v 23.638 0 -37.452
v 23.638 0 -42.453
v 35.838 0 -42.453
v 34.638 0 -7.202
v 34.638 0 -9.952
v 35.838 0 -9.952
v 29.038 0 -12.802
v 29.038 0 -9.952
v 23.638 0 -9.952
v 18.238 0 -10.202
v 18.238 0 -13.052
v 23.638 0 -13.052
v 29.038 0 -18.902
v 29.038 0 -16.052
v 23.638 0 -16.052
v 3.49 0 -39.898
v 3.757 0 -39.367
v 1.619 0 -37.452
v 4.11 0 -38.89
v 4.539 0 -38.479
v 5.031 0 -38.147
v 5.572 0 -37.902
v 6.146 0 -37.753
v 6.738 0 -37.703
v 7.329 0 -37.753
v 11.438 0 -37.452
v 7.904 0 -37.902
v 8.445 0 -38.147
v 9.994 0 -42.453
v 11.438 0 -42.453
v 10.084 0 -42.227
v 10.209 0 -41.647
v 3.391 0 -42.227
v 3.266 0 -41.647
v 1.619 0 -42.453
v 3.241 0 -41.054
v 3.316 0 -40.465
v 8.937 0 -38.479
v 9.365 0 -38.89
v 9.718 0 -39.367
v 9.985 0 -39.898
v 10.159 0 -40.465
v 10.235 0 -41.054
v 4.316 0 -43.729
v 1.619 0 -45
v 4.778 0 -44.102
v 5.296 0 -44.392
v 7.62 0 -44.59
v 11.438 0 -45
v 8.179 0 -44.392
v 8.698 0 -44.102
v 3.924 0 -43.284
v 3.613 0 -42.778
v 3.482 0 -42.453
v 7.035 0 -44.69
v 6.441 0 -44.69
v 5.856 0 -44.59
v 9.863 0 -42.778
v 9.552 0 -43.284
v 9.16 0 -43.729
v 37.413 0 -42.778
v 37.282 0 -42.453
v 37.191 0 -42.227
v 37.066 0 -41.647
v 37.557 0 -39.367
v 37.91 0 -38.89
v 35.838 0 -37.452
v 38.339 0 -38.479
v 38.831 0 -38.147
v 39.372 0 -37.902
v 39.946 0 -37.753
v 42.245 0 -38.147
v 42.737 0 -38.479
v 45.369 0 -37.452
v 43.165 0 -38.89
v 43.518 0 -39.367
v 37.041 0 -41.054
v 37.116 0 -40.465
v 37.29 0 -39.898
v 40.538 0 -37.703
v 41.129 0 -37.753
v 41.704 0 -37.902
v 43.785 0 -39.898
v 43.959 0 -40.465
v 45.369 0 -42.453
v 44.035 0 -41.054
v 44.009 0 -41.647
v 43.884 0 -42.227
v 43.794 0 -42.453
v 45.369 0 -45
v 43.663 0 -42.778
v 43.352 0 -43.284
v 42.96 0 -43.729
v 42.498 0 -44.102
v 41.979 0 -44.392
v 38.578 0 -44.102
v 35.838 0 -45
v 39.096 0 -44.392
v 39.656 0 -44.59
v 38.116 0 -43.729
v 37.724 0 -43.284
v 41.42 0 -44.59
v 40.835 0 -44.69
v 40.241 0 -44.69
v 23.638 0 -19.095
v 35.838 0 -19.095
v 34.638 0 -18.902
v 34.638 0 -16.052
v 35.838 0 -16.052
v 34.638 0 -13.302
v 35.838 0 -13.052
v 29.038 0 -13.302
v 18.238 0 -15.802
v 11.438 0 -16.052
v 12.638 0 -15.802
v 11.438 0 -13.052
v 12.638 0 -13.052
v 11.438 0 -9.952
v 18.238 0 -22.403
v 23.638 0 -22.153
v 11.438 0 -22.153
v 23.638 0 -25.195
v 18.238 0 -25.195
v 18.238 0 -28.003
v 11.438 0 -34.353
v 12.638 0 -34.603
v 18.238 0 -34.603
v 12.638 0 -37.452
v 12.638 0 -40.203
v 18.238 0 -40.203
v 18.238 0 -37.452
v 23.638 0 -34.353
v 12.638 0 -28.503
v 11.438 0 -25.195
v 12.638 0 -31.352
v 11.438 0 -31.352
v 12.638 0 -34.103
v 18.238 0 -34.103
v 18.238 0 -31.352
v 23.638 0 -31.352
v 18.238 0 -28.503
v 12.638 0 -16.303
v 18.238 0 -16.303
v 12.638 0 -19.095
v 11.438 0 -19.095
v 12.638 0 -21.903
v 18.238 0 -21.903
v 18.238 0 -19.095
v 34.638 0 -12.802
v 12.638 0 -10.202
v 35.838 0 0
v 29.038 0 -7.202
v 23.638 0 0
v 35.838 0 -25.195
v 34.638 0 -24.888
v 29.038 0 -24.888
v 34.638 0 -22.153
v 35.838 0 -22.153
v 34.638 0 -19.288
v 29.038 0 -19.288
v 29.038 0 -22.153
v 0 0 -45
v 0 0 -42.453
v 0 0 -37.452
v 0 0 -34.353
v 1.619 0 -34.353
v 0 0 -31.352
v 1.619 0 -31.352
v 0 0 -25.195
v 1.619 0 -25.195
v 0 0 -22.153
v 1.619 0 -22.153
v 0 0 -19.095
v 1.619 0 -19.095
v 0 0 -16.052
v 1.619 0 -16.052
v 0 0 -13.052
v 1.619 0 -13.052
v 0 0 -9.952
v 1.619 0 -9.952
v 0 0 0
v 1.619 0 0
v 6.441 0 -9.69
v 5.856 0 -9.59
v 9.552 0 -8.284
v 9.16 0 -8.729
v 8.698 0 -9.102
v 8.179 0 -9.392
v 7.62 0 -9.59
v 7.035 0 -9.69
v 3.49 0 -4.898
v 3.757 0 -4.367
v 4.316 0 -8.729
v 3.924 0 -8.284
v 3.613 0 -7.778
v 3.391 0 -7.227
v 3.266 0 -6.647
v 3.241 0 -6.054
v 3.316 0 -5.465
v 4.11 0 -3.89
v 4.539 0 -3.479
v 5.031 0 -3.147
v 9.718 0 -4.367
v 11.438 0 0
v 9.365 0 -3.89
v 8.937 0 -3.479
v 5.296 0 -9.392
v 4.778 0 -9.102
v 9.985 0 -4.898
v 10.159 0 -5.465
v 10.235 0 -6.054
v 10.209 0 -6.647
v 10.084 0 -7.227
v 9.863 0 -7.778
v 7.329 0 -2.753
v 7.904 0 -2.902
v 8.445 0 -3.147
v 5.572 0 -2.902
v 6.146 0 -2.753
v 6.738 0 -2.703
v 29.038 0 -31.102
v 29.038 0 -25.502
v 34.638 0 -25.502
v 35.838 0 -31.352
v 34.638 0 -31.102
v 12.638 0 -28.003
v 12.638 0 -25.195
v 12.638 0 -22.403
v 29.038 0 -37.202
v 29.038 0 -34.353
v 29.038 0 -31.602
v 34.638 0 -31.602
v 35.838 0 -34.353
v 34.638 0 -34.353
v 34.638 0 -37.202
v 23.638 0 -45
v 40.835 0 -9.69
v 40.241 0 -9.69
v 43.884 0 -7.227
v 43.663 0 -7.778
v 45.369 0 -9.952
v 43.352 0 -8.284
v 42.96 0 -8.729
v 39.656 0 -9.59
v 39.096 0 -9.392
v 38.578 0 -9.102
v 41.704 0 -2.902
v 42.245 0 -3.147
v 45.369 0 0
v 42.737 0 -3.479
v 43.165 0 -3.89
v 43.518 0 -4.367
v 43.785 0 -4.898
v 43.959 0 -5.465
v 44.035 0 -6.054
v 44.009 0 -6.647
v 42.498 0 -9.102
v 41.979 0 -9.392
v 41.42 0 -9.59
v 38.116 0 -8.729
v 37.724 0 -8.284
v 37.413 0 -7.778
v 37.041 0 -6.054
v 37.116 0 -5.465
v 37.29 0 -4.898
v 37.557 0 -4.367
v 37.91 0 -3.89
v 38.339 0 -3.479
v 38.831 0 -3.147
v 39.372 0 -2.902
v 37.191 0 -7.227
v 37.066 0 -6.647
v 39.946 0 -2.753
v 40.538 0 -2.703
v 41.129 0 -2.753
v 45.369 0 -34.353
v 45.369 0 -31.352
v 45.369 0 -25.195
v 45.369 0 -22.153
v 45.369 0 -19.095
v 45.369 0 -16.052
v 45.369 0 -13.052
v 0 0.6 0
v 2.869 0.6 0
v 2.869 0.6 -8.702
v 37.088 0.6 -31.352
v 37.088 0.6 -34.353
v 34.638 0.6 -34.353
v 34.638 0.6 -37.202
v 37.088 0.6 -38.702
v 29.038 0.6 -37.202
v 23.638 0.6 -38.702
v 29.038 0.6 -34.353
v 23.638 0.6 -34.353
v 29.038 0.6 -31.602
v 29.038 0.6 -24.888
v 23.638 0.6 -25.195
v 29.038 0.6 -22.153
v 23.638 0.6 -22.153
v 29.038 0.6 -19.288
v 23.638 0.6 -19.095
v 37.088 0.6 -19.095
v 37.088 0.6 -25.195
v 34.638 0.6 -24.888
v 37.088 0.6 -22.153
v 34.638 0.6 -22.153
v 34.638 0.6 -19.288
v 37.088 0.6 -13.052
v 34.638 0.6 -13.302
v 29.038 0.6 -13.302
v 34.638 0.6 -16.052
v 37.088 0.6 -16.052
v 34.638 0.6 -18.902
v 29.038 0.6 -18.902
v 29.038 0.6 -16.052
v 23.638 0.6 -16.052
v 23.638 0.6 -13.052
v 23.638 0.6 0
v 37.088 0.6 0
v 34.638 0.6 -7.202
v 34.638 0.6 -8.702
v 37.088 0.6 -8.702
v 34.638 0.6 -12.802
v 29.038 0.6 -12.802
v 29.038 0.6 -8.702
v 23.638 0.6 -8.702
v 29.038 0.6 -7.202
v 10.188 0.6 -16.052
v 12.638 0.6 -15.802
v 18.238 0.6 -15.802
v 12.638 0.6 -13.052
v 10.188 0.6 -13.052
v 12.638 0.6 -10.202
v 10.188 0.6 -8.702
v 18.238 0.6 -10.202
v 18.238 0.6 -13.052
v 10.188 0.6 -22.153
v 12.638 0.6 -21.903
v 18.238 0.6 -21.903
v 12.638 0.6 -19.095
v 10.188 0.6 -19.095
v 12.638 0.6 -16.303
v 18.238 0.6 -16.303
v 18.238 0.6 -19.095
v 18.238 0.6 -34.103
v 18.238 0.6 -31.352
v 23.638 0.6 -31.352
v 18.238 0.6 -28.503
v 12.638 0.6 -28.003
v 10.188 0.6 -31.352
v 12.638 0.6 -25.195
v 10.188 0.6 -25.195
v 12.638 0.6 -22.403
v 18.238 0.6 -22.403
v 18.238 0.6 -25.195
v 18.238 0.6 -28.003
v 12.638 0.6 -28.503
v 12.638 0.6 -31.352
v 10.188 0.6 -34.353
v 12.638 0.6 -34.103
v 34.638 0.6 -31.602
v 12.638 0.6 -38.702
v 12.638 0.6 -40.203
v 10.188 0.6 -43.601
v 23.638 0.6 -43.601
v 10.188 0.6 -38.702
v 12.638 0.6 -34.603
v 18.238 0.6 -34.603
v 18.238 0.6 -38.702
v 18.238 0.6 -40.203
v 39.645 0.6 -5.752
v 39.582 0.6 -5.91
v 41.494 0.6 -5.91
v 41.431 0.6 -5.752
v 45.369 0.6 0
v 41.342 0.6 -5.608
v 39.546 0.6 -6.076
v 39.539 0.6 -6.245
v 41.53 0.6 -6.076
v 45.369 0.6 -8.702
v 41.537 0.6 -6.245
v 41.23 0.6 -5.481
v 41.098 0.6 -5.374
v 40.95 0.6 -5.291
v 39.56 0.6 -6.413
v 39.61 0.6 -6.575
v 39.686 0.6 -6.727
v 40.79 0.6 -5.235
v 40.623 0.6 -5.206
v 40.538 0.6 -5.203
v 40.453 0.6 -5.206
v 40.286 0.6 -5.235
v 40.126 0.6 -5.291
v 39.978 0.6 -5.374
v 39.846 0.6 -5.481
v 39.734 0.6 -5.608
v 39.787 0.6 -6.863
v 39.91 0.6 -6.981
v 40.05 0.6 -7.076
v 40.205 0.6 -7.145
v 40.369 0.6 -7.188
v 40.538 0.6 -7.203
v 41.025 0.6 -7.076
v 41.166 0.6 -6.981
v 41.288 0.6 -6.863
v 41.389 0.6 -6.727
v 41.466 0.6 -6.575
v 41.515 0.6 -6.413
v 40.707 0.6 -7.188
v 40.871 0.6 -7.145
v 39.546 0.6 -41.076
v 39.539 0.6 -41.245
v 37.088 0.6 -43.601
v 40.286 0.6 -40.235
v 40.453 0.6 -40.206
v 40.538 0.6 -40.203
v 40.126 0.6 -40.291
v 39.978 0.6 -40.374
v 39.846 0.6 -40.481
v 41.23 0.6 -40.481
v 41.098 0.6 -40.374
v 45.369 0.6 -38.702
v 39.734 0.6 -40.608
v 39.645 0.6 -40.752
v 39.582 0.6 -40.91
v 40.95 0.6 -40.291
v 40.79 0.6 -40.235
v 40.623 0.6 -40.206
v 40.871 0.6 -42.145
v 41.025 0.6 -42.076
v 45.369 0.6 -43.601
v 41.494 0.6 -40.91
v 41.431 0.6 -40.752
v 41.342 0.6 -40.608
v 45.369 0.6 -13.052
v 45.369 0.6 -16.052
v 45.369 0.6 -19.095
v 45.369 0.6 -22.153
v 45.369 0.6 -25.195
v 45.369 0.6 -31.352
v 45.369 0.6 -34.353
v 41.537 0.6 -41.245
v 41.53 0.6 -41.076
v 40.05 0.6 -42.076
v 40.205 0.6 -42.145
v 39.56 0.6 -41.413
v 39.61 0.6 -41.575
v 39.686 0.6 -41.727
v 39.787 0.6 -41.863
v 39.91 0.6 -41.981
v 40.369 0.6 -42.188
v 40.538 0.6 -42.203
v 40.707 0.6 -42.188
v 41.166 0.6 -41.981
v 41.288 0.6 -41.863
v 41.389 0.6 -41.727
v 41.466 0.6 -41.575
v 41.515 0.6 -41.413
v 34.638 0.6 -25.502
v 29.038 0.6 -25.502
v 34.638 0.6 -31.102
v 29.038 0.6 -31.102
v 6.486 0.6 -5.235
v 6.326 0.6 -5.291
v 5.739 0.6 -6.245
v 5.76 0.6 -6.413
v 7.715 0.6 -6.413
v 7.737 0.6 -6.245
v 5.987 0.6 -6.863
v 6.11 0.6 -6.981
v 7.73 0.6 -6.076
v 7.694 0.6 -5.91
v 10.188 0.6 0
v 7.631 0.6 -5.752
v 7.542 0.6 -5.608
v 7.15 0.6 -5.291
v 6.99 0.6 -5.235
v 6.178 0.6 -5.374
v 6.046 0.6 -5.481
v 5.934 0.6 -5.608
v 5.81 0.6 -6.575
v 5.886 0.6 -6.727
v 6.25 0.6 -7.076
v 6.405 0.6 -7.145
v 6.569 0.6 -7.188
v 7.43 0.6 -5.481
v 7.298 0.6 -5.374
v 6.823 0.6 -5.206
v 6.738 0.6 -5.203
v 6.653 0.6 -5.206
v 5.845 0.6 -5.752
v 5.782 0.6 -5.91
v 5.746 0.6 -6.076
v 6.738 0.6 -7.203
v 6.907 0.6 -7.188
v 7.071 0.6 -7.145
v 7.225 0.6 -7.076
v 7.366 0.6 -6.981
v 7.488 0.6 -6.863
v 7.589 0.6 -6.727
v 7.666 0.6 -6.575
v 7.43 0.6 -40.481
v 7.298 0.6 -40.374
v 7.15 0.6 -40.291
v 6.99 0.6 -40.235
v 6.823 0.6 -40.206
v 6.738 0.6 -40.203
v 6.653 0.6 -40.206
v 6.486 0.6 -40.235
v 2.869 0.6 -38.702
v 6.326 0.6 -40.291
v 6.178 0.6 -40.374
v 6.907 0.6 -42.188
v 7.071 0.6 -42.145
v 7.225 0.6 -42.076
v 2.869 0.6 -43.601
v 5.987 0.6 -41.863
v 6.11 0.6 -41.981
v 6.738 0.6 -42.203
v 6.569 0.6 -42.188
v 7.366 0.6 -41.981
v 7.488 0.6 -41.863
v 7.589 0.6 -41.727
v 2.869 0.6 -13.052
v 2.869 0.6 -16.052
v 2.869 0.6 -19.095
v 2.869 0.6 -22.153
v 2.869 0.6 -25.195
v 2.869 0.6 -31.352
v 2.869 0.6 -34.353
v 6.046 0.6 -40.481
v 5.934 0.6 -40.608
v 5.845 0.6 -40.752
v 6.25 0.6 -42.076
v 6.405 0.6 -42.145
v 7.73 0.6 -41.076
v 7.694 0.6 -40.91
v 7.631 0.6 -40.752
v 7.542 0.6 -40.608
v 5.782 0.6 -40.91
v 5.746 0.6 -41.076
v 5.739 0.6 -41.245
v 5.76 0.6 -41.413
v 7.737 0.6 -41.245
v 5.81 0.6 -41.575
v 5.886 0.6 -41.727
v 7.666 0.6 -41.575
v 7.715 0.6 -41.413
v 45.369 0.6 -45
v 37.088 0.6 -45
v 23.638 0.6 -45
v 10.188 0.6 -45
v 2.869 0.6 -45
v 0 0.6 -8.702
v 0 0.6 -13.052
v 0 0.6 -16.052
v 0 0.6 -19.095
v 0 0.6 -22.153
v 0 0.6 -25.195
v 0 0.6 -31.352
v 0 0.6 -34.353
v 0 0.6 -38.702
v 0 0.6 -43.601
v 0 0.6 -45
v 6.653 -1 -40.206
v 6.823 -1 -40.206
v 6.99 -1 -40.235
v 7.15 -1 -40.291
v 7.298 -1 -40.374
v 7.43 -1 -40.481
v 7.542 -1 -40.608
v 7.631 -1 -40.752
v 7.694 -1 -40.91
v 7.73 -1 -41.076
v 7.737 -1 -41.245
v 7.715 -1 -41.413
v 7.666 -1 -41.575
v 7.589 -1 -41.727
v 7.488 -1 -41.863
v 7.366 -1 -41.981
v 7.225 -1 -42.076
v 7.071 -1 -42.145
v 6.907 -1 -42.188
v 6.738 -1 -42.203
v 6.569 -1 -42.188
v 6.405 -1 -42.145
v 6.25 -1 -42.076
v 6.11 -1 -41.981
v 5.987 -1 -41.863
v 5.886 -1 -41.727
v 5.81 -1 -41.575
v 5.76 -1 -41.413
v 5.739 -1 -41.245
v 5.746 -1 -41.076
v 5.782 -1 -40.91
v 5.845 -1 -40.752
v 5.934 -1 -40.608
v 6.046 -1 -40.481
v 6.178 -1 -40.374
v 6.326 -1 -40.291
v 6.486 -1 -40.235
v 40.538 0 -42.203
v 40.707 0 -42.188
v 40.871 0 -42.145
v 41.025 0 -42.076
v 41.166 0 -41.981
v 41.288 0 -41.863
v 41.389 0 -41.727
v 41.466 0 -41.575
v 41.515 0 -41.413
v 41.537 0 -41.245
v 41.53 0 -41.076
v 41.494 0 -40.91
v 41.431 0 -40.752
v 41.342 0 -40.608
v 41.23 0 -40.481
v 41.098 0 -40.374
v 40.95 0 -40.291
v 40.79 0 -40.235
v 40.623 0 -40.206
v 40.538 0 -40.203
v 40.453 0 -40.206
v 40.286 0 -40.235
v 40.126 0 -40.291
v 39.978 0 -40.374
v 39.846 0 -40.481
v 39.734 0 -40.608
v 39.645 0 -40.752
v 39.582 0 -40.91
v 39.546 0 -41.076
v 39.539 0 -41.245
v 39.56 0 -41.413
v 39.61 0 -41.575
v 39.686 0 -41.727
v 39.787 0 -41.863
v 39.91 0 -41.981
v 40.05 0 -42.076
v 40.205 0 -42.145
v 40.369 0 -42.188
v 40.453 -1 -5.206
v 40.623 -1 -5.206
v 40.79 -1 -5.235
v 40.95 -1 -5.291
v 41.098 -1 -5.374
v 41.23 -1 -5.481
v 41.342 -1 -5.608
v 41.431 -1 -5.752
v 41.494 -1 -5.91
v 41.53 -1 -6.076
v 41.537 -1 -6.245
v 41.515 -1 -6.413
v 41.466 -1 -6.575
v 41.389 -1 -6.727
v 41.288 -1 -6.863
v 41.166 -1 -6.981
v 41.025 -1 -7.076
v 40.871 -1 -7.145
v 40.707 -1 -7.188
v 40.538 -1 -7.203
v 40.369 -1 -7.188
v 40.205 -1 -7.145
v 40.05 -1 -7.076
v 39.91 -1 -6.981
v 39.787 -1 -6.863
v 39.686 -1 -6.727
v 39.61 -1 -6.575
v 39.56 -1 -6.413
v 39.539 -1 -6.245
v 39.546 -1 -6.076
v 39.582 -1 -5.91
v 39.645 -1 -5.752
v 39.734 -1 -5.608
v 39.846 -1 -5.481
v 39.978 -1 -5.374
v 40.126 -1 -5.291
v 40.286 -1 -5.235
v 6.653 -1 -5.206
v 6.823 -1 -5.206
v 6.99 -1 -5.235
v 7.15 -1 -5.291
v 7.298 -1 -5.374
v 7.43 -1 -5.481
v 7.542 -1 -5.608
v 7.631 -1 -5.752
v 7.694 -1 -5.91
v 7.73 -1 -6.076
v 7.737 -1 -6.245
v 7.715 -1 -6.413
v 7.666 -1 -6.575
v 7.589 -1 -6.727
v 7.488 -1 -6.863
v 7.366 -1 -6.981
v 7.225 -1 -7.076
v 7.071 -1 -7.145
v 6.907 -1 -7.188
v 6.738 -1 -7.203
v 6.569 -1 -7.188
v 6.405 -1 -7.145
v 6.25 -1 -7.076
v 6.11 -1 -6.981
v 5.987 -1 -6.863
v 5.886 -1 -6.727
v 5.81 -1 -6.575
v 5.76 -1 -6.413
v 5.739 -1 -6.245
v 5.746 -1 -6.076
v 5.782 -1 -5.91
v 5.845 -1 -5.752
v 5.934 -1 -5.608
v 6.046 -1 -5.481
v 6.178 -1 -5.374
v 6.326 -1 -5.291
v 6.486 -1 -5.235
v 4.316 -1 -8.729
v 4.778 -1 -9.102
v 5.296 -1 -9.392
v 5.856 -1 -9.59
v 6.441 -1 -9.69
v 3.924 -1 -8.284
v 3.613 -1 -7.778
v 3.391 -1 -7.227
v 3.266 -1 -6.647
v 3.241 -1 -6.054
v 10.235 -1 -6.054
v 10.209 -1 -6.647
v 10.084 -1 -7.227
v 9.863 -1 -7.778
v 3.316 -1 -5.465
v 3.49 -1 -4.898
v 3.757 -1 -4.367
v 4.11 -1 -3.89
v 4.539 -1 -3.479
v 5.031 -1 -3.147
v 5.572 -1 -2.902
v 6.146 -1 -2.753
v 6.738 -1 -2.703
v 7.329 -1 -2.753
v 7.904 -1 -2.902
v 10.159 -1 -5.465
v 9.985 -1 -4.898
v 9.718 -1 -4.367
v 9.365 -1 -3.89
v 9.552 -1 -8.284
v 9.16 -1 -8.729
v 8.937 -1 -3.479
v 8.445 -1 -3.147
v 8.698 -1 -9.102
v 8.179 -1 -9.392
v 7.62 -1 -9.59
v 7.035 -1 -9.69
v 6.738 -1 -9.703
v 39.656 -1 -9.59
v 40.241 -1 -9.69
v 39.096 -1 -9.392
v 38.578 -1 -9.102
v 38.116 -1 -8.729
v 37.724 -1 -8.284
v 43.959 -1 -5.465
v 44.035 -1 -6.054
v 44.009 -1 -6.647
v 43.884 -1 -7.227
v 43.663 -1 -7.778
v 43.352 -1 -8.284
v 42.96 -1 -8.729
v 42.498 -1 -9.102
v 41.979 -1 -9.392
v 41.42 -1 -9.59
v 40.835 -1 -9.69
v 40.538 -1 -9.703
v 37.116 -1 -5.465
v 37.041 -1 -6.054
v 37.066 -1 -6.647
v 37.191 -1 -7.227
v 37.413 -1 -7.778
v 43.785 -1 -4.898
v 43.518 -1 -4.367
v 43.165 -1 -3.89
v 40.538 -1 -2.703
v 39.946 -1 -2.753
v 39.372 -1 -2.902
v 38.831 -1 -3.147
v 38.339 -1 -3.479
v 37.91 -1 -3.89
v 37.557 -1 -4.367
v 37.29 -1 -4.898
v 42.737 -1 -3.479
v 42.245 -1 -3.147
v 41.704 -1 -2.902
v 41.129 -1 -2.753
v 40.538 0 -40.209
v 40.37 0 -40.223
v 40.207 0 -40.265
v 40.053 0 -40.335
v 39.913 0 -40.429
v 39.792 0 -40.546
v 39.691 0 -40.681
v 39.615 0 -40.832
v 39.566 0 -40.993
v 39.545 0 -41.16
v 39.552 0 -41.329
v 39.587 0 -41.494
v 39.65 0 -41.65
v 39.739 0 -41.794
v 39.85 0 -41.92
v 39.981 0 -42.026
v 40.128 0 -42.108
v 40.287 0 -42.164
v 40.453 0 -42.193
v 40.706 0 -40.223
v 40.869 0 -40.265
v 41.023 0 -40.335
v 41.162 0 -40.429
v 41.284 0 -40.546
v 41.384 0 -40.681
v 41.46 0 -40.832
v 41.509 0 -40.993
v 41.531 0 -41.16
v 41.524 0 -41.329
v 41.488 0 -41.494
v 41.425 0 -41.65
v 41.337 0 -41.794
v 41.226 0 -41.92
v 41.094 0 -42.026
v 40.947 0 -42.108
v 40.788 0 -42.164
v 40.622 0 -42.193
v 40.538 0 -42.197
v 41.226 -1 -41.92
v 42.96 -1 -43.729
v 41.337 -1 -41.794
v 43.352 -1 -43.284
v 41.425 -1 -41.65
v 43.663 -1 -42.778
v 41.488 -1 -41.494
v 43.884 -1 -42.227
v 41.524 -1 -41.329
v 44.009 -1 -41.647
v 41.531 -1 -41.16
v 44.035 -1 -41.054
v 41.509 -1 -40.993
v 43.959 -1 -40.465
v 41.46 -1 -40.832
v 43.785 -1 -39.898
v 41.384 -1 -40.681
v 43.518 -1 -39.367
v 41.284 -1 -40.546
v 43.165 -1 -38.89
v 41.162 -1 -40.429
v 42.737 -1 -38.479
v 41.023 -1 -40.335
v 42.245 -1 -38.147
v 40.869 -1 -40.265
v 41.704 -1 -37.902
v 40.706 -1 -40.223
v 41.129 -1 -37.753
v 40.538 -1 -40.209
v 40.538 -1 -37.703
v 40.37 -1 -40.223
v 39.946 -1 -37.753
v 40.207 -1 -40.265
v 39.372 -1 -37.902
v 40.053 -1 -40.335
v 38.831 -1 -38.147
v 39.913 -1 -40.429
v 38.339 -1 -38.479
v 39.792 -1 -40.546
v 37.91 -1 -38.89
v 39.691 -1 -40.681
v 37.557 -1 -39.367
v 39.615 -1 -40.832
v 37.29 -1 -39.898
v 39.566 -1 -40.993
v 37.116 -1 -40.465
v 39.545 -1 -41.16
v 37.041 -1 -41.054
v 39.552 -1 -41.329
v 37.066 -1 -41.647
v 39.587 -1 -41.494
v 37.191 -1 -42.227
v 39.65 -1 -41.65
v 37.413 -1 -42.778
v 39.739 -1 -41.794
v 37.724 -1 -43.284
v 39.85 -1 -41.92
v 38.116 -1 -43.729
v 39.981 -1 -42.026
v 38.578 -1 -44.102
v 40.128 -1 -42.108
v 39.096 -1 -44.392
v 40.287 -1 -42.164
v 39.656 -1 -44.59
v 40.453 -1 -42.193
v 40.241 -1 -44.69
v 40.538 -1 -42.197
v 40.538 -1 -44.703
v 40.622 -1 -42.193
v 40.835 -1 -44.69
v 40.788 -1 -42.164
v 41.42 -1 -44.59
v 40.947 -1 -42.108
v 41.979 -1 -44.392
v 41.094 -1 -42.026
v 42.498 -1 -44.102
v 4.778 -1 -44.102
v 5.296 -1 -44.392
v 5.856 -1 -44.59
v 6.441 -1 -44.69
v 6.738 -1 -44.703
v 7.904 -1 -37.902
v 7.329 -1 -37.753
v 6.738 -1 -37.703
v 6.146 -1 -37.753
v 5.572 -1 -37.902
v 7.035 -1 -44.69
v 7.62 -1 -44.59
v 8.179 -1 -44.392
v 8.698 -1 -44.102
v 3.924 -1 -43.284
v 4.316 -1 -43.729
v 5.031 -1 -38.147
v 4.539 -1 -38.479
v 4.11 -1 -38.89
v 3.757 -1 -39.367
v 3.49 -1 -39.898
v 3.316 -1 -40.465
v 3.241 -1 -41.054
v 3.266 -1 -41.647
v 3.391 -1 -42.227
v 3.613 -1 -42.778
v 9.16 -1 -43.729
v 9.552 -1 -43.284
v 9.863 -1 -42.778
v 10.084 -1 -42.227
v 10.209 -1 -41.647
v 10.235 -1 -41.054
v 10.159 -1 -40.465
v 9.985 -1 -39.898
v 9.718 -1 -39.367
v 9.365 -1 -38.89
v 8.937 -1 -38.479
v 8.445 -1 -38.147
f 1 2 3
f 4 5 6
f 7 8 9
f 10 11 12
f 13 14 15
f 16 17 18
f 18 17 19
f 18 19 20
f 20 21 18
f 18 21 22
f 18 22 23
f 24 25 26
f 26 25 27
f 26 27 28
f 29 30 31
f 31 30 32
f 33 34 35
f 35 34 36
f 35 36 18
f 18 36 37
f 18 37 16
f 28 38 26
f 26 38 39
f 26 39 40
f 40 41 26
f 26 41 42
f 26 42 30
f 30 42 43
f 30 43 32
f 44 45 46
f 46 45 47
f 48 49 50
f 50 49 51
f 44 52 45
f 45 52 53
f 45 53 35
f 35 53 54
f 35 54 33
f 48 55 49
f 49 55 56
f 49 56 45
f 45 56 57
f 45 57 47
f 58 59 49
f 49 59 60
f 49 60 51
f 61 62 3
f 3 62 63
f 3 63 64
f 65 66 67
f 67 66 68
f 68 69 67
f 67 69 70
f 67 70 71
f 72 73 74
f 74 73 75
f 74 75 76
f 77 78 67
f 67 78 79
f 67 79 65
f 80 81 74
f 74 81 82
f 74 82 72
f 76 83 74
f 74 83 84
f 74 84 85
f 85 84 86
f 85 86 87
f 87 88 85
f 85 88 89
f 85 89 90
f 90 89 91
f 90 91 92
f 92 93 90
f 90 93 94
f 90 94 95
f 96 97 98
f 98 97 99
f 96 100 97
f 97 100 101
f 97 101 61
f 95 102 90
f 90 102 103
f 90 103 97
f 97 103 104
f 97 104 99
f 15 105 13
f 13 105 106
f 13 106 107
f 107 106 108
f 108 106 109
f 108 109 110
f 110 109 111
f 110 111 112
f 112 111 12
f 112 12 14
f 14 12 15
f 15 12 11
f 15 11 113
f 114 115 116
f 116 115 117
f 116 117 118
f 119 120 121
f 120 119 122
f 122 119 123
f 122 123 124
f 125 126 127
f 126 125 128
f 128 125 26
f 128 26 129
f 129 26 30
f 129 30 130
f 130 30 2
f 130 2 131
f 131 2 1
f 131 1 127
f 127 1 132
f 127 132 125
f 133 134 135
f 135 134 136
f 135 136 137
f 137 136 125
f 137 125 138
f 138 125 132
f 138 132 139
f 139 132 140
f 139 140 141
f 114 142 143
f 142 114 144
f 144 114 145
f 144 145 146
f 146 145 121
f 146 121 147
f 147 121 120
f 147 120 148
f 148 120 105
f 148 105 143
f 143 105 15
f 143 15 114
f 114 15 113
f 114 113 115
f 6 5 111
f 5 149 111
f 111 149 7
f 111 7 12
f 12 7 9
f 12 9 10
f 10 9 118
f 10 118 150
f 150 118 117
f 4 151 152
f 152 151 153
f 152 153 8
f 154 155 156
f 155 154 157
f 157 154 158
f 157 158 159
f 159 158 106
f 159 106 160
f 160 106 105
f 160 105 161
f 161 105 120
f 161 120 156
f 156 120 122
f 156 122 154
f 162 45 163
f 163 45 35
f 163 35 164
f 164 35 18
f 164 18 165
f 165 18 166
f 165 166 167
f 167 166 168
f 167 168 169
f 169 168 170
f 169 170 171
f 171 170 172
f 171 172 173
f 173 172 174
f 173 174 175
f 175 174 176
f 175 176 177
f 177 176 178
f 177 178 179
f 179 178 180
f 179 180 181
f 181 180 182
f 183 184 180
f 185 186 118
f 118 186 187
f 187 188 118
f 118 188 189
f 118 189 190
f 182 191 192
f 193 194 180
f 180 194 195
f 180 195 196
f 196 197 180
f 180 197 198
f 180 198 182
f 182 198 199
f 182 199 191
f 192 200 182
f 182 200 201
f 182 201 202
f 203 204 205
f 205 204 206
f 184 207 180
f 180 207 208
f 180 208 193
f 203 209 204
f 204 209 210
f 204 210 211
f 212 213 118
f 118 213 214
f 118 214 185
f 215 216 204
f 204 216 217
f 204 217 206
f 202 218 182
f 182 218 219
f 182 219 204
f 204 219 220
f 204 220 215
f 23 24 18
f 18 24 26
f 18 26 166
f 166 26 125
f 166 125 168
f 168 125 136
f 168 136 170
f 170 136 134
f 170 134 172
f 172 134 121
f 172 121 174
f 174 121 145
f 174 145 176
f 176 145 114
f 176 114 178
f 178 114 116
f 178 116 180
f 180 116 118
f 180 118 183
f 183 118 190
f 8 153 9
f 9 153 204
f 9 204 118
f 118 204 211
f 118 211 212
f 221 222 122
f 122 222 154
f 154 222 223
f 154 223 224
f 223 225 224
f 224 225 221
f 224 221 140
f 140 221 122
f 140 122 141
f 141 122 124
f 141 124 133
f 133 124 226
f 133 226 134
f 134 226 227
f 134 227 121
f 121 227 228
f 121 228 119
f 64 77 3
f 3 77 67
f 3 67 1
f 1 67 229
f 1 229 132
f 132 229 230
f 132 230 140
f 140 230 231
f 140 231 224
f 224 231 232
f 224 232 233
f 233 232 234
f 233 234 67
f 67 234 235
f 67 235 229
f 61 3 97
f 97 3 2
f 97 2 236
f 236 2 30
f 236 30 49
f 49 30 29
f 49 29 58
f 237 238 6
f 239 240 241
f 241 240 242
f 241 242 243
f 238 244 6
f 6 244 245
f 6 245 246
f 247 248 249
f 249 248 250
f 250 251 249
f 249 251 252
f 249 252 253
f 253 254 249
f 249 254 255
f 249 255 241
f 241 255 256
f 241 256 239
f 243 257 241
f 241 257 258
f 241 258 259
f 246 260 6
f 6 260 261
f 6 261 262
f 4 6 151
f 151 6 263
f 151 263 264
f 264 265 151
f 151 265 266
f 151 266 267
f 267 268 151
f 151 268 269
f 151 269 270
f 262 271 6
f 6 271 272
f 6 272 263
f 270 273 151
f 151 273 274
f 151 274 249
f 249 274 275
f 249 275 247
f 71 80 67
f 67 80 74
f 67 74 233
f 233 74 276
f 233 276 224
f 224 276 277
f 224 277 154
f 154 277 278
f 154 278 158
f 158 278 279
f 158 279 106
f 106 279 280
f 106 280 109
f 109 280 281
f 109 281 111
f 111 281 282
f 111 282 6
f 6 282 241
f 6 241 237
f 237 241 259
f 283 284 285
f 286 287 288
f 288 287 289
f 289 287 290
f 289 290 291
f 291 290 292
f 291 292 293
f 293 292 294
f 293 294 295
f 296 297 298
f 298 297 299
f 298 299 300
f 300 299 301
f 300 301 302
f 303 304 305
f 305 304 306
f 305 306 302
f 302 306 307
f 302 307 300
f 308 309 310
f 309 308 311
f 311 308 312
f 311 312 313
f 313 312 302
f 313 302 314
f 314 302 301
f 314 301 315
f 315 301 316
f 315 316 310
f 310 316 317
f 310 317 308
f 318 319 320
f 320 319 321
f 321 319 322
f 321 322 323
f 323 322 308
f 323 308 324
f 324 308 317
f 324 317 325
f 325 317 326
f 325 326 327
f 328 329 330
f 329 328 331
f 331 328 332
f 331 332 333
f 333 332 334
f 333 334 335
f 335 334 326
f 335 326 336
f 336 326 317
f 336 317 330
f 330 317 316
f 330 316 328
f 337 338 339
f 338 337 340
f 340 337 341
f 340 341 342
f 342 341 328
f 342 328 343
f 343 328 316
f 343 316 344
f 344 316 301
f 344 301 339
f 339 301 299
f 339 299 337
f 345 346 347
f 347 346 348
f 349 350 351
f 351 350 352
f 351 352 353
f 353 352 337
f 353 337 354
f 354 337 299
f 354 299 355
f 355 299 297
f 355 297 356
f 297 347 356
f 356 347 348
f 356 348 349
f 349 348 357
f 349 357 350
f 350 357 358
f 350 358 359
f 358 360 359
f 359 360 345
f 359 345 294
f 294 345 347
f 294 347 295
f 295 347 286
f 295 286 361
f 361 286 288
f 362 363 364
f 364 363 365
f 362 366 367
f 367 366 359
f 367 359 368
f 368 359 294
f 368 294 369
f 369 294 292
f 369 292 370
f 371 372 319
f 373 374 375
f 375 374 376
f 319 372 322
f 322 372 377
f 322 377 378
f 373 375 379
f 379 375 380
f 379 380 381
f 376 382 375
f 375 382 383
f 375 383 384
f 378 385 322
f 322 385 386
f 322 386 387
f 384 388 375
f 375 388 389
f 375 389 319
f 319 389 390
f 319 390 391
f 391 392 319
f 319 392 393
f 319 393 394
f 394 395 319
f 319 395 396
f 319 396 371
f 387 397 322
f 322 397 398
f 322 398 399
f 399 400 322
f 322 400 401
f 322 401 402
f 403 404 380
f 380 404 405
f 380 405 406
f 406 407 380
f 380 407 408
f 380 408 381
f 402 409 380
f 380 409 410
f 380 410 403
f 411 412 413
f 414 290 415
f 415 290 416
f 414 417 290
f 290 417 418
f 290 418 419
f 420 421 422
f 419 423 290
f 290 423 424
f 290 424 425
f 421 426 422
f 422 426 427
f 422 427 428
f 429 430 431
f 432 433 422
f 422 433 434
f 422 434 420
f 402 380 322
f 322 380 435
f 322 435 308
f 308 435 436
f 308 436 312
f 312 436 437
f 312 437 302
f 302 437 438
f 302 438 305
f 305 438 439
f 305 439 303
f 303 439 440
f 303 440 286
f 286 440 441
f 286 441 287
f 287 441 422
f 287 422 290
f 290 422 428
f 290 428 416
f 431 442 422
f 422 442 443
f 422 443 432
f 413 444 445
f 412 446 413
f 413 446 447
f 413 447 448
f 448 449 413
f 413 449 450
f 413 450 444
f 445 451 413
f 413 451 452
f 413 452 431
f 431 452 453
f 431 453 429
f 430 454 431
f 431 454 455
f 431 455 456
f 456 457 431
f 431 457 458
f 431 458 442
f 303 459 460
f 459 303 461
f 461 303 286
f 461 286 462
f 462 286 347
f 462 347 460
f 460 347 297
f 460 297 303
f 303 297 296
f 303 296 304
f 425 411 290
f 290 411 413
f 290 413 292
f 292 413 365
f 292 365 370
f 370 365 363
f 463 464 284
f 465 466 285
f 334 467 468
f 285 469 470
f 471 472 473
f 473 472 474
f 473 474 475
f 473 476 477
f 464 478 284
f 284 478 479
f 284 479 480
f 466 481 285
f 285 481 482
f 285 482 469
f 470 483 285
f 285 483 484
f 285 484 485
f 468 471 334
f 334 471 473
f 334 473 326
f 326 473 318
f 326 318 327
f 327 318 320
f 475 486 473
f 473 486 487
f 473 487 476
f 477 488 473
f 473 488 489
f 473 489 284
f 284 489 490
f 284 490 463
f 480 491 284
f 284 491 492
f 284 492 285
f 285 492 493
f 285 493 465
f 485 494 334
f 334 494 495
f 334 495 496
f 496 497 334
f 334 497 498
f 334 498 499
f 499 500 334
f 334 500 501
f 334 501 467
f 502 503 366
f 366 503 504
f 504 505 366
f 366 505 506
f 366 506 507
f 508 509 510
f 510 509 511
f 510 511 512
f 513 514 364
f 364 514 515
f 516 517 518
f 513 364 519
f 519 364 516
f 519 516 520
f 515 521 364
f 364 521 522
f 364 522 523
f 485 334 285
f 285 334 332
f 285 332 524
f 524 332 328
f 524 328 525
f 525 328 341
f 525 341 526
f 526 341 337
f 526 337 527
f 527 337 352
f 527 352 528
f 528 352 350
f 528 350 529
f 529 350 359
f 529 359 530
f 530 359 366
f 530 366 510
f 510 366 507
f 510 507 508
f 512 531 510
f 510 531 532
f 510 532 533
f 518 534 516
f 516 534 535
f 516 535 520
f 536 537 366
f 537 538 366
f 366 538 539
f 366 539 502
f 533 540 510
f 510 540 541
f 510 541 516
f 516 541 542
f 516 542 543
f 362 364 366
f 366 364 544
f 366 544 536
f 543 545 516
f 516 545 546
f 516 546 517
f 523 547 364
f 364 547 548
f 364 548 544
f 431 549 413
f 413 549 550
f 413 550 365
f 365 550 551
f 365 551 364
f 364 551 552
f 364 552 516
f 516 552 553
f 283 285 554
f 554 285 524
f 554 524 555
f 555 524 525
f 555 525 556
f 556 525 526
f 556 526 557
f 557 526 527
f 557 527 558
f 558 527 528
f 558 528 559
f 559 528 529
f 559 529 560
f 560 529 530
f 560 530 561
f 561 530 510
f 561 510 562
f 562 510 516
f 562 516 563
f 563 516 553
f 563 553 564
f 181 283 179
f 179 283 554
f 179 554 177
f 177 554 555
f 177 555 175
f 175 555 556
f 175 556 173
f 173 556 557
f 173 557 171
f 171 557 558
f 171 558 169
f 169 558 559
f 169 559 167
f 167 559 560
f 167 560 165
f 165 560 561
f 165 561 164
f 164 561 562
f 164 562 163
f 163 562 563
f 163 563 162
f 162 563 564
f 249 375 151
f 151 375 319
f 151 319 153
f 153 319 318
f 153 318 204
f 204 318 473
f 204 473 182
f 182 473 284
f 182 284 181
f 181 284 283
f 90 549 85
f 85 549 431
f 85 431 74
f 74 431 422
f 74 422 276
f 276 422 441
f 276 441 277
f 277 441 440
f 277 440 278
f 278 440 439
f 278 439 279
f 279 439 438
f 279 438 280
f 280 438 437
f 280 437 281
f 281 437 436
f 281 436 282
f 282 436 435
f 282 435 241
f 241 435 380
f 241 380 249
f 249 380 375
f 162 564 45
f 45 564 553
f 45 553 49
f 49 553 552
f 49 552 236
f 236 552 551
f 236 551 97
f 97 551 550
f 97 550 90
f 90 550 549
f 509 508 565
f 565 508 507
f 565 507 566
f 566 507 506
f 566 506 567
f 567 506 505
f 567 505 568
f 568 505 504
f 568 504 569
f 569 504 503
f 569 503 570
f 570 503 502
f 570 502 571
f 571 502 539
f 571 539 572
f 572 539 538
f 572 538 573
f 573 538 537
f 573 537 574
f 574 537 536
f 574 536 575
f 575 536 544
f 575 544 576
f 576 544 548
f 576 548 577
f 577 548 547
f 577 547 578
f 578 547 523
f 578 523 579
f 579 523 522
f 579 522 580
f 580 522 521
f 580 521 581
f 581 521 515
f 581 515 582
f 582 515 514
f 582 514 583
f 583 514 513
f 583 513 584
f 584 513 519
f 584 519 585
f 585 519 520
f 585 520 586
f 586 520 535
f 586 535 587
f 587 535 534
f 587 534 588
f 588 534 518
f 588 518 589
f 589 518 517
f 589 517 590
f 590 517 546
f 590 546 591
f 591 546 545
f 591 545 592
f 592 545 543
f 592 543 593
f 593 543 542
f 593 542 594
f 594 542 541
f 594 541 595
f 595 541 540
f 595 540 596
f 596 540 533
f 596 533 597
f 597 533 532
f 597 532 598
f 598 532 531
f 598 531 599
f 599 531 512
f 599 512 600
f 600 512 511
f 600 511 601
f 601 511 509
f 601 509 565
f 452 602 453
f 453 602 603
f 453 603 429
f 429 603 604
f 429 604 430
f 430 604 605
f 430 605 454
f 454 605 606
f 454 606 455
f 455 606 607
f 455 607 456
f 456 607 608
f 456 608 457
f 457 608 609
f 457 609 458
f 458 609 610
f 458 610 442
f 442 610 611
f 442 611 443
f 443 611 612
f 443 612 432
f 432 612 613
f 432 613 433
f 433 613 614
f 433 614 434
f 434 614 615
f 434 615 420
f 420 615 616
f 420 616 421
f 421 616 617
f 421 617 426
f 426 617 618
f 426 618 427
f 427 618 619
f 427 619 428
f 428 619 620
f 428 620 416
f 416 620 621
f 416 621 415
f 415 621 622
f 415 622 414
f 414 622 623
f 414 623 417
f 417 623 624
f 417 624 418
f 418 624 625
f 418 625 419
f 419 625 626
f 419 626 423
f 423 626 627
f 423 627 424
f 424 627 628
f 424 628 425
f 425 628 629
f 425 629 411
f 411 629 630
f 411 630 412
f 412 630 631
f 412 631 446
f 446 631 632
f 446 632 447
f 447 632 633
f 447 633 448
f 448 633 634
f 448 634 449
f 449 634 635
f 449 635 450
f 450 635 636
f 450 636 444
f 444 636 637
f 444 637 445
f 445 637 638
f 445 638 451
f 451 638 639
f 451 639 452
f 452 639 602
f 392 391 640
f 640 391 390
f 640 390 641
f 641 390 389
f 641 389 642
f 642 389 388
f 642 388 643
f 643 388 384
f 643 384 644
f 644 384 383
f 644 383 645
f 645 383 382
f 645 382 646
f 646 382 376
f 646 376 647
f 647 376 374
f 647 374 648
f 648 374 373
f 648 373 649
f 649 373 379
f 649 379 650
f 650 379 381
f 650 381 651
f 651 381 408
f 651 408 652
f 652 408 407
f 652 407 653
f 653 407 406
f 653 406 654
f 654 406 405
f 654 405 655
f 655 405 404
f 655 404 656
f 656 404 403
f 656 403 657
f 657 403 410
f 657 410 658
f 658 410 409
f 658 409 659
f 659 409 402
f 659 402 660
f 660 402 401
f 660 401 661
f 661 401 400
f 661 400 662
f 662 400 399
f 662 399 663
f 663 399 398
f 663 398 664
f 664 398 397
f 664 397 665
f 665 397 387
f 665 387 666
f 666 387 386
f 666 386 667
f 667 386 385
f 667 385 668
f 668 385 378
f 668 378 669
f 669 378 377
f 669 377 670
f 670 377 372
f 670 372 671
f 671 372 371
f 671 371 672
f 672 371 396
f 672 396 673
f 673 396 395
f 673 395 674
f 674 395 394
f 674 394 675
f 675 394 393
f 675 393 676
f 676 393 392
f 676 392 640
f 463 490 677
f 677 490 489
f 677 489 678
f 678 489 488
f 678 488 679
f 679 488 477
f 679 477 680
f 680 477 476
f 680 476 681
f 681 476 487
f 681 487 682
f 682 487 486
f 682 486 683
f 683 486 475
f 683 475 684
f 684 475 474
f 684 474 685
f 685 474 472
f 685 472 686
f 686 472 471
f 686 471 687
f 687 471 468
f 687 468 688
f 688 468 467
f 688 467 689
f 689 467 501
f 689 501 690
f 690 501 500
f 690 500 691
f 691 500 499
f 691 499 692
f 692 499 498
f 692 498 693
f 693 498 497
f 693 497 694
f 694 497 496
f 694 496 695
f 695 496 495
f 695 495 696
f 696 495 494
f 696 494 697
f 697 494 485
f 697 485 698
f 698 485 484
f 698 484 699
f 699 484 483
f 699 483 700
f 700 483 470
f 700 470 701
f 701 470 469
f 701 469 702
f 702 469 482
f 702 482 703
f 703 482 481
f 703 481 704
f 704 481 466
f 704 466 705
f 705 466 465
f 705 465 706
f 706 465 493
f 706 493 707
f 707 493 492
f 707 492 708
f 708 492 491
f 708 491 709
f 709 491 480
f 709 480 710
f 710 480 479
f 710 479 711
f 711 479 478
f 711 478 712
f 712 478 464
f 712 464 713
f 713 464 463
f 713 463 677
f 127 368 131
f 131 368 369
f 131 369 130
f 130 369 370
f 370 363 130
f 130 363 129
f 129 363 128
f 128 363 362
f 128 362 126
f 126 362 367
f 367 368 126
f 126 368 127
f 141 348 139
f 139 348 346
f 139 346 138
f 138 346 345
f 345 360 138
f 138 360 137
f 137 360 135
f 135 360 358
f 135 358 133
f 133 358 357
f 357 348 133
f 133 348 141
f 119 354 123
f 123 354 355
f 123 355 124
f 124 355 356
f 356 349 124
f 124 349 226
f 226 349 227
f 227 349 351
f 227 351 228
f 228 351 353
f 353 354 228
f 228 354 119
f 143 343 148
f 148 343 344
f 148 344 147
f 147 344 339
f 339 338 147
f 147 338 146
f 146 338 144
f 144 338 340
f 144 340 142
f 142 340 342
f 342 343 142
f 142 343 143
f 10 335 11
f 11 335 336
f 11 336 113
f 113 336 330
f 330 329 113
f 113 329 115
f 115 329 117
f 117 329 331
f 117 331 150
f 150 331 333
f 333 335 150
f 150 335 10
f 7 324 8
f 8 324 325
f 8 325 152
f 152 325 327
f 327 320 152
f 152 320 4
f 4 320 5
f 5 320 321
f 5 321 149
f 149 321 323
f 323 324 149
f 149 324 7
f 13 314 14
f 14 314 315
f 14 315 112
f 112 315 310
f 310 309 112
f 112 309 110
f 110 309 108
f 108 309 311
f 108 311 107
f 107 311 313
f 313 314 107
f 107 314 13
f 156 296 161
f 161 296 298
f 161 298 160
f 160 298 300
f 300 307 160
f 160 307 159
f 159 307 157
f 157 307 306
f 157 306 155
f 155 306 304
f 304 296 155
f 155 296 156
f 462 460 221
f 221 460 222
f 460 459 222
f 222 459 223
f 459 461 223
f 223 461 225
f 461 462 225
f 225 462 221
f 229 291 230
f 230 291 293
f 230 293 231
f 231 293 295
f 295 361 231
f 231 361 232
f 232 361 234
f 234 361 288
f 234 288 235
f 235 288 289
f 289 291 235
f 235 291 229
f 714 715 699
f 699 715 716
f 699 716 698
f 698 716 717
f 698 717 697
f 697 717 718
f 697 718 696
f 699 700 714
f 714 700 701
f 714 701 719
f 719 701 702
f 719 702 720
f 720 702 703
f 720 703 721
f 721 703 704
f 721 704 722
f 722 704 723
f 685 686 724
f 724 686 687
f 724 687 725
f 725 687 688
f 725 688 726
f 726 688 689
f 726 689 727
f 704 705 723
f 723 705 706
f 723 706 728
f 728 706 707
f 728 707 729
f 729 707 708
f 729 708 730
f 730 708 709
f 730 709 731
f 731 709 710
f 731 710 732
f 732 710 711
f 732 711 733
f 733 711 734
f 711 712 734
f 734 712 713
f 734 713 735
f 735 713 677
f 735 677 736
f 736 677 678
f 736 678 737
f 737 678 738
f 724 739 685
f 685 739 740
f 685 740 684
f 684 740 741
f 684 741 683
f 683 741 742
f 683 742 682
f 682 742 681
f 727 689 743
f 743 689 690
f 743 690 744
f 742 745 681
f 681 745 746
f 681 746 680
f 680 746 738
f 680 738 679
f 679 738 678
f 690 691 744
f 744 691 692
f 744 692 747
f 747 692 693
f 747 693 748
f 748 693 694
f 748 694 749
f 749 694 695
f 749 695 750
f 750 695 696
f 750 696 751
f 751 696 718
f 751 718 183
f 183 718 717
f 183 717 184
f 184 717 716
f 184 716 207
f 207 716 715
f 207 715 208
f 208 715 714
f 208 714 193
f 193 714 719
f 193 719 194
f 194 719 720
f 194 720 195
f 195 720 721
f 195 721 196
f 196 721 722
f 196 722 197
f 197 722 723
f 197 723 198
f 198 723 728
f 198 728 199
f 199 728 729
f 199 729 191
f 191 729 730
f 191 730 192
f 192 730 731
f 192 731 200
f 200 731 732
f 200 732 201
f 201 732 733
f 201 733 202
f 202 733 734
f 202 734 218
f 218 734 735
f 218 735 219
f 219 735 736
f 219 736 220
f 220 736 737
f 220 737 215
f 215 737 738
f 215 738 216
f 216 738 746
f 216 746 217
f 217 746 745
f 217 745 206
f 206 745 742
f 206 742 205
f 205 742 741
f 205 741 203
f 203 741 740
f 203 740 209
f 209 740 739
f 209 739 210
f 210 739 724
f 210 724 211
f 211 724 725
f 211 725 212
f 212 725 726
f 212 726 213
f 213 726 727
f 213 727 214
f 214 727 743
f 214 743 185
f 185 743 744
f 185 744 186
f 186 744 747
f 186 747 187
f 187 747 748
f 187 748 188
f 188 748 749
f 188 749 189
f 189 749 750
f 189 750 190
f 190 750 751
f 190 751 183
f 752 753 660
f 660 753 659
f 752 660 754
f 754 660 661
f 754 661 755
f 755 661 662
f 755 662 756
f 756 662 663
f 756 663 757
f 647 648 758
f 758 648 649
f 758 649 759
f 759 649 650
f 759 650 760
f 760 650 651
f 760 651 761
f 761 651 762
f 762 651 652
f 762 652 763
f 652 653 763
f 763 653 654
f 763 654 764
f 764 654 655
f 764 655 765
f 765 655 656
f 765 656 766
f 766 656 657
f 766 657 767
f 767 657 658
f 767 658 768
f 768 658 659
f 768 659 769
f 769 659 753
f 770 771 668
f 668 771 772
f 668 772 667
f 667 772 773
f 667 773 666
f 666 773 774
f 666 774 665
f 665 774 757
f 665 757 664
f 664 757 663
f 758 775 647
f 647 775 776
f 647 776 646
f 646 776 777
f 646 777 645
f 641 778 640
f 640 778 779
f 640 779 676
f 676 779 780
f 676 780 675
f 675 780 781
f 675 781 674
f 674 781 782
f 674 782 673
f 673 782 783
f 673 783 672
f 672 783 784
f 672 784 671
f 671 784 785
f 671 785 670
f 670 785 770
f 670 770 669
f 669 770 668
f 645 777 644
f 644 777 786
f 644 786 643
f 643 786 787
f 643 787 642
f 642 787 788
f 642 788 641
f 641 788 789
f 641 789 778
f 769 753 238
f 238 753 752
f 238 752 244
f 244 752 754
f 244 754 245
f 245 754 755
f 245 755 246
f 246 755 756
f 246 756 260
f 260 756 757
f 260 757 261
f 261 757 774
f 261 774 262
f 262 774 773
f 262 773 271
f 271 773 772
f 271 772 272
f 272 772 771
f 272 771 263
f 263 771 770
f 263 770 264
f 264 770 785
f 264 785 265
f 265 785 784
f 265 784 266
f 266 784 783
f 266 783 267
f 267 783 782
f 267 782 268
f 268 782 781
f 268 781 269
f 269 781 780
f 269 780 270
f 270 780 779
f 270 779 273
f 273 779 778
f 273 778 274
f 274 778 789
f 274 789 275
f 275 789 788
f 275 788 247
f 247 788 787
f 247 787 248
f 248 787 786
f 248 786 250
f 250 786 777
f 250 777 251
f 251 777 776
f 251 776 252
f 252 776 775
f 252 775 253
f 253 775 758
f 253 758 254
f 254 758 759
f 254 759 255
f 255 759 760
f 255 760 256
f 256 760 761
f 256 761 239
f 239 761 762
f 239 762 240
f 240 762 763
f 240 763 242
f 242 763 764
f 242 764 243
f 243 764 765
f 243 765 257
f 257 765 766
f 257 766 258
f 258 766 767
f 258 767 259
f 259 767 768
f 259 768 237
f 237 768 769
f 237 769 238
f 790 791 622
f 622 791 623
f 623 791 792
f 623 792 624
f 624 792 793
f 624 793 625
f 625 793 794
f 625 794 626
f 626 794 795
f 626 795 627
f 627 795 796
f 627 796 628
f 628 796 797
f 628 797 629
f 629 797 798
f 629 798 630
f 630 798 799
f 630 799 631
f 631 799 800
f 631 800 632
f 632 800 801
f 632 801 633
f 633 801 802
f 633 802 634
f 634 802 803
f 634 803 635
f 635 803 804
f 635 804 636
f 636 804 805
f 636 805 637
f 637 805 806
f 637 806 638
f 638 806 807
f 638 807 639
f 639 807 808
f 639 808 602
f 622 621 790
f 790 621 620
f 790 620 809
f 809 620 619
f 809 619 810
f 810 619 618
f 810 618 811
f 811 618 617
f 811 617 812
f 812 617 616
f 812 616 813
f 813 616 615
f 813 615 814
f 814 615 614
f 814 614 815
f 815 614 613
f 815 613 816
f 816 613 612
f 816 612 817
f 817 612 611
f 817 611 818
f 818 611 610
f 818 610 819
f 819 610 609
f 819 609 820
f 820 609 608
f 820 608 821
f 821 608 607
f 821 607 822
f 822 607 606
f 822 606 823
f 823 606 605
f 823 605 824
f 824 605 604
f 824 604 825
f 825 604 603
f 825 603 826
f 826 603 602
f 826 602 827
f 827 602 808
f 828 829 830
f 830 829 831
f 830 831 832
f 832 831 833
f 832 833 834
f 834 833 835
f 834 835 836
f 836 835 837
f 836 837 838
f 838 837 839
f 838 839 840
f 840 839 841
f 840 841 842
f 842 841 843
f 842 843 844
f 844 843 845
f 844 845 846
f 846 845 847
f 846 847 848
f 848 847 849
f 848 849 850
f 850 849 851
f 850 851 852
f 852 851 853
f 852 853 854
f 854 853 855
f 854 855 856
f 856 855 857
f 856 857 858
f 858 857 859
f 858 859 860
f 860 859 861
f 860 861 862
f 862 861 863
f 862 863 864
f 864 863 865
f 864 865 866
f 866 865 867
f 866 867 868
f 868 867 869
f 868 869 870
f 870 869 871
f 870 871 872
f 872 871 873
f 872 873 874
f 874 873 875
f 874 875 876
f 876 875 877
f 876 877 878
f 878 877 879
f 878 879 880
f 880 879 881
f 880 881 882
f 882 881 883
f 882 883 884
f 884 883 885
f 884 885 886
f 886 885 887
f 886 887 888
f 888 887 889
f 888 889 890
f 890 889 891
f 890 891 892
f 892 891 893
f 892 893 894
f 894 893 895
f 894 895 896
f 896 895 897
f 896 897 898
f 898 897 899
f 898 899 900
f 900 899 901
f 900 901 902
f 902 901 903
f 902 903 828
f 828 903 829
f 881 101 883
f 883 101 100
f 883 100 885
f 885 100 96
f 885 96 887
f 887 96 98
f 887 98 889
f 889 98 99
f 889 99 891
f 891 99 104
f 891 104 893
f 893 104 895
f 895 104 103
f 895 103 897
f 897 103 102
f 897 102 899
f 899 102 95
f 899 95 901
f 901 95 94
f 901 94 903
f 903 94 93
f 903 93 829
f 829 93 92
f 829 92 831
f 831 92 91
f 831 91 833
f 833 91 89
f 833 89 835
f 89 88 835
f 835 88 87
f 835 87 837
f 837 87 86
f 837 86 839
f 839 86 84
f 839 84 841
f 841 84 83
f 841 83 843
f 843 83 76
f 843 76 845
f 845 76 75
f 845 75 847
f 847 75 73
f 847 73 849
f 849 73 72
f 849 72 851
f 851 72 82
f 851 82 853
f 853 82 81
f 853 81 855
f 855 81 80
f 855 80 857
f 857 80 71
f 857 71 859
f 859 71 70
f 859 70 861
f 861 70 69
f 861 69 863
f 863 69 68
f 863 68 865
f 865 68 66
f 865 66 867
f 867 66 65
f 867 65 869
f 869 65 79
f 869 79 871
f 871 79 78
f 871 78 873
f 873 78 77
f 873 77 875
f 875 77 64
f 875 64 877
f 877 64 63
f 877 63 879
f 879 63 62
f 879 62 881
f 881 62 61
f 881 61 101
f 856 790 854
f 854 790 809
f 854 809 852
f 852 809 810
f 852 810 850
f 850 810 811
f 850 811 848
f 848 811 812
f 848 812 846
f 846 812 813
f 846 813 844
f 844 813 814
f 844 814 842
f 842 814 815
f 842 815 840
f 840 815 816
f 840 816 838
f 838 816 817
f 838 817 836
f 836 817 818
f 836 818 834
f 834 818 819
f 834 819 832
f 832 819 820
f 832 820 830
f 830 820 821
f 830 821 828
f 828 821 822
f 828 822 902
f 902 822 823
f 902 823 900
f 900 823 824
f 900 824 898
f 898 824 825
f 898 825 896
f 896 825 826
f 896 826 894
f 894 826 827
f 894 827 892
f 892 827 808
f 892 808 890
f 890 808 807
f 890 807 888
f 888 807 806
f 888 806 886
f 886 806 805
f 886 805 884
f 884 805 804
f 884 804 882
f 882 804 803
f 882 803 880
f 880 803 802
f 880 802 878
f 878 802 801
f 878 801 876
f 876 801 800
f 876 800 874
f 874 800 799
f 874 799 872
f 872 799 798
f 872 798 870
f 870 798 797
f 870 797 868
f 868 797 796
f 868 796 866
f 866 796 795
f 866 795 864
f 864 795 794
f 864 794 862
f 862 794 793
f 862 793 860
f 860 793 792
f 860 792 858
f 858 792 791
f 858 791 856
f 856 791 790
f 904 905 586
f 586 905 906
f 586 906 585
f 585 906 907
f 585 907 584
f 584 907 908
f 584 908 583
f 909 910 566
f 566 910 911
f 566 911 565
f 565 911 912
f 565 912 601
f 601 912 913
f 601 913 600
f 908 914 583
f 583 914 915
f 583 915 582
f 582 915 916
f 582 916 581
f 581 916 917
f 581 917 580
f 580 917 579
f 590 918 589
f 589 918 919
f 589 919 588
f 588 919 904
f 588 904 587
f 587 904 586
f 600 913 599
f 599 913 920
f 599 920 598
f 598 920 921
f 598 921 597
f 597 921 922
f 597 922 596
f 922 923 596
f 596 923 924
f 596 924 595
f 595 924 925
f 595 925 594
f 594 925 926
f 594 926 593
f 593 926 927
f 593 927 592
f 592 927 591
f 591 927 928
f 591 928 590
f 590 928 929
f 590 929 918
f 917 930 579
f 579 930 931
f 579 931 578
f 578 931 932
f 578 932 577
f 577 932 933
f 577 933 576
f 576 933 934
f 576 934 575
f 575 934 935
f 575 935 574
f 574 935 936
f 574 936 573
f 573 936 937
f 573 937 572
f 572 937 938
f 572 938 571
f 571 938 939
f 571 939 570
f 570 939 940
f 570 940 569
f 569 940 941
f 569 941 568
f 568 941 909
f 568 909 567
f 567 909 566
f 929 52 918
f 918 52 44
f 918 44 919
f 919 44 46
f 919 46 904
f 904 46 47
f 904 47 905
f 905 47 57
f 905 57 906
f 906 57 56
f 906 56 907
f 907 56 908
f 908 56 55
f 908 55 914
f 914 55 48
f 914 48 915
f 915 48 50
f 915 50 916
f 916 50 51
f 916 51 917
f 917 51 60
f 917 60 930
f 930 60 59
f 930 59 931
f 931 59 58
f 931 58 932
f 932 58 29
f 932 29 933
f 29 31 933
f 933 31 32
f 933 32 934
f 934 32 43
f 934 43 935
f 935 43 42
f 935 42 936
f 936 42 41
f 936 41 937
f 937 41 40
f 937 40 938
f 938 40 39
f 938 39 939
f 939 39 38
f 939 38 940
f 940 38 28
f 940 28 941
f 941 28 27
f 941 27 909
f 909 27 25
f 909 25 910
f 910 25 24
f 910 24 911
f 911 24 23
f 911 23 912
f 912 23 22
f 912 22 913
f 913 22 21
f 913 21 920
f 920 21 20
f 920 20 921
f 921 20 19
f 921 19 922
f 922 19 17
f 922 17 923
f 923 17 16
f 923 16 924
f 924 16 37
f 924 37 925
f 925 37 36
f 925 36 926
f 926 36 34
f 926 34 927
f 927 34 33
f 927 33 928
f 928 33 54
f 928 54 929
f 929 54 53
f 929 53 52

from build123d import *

# Parameters (mm, degrees)
SKETCH_1_W      = 45.369381955
SKETCH_1_H      = 45
SKETCH_1_R      = 1
SKETCH_1_W_2    = 5.6
SKETCH_1_H_2    = 5.6
EXTRUDE_1_DEPTH = 0.6
SKETCH_2_R      = 3.5
SKETCH_2_R_2    = 1
SKETCH_2_R_3    = 0.994011389
EXTRUDE_2_DEPTH = 1


with BuildPart() as part:
    # Эскиз1 → Бобышка-Вытянуть1 (new body)
    with BuildSketch(Plane(origin=(0, 0, 0), x_dir=(1, 0, 0), z_dir=(0, 1, 0))):
        with Locations((22.684690978, 22.5)):
            Rectangle(SKETCH_1_W, SKETCH_1_H)
        with Locations((6.737781955, 41.202537594)):
            Circle(SKETCH_1_R, mode=Mode.SUBTRACT)
        with Locations((40.537781955, 41.202537594)):
            Circle(SKETCH_1_R, mode=Mode.SUBTRACT)
        with Locations((40.537781955, 6.202537594)):
            Circle(SKETCH_1_R, mode=Mode.SUBTRACT)
        with Locations((6.737781955, 6.202537594)):
            Circle(SKETCH_1_R, mode=Mode.SUBTRACT)
        with Locations((15.437781955, 37.402537594)):
            Rectangle(SKETCH_1_W_2, SKETCH_1_H_2, mode=Mode.SUBTRACT)
        with Locations((15.437781955, 31.302537594)):
            Rectangle(SKETCH_1_W_2, SKETCH_1_H_2, mode=Mode.SUBTRACT)
        with Locations((15.437781955, 25.202537594)):
            Rectangle(SKETCH_1_W_2, SKETCH_1_H_2, mode=Mode.SUBTRACT)
        with Locations((15.437781955, 19.102537594)):
            Rectangle(SKETCH_1_W_2, SKETCH_1_H_2, mode=Mode.SUBTRACT)
        with Locations((15.437781955, 13.002237594)):
            Rectangle(SKETCH_1_W_2, SKETCH_1_H_2, mode=Mode.SUBTRACT)
        with Locations((31.837781955, 10.002237594)):
            Rectangle(SKETCH_1_W_2, SKETCH_1_H_2, mode=Mode.SUBTRACT)
        with Locations((31.837781955, 16.102237594)):
            Rectangle(SKETCH_1_W_2, SKETCH_1_H_2, mode=Mode.SUBTRACT)
        with Locations((31.837781955, 22.087504722)):
            Rectangle(SKETCH_1_W_2, SKETCH_1_H_2, mode=Mode.SUBTRACT)
        with Locations((31.837781955, 28.302237594)):
            Rectangle(SKETCH_1_W_2, SKETCH_1_H_2, mode=Mode.SUBTRACT)
        with Locations((31.837781955, 34.402237594)):
            Rectangle(SKETCH_1_W_2, SKETCH_1_H_2, mode=Mode.SUBTRACT)
    extrude(amount=EXTRUDE_1_DEPTH)

    # Эскиз2 → Бобышка-Вытянуть2 (add)
    with BuildSketch(Plane.XZ):
        with Locations((6.737781955, -6.202537594)):
            Circle(SKETCH_2_R)
        with Locations((6.737781955, -6.202537594)):
            Circle(SKETCH_2_R_2, mode=Mode.SUBTRACT)
        with Locations((40.537781955, -6.202537594)):
            Circle(SKETCH_2_R)
        with Locations((40.537781955, -6.202537594)):
            Circle(SKETCH_2_R_2, mode=Mode.SUBTRACT)
        with Locations((40.537781955, -41.202537594)):
            Circle(SKETCH_2_R)
        with Locations((40.537781955, -41.202537594)):
            Circle(SKETCH_2_R_3, mode=Mode.SUBTRACT)
        with Locations((6.737781955, -41.202537594)):
            Circle(SKETCH_2_R)
        with Locations((6.737781955, -41.202537594)):
            Circle(SKETCH_2_R_2, mode=Mode.SUBTRACT)
    extrude(amount=EXTRUDE_2_DEPTH)


solid = part.part
